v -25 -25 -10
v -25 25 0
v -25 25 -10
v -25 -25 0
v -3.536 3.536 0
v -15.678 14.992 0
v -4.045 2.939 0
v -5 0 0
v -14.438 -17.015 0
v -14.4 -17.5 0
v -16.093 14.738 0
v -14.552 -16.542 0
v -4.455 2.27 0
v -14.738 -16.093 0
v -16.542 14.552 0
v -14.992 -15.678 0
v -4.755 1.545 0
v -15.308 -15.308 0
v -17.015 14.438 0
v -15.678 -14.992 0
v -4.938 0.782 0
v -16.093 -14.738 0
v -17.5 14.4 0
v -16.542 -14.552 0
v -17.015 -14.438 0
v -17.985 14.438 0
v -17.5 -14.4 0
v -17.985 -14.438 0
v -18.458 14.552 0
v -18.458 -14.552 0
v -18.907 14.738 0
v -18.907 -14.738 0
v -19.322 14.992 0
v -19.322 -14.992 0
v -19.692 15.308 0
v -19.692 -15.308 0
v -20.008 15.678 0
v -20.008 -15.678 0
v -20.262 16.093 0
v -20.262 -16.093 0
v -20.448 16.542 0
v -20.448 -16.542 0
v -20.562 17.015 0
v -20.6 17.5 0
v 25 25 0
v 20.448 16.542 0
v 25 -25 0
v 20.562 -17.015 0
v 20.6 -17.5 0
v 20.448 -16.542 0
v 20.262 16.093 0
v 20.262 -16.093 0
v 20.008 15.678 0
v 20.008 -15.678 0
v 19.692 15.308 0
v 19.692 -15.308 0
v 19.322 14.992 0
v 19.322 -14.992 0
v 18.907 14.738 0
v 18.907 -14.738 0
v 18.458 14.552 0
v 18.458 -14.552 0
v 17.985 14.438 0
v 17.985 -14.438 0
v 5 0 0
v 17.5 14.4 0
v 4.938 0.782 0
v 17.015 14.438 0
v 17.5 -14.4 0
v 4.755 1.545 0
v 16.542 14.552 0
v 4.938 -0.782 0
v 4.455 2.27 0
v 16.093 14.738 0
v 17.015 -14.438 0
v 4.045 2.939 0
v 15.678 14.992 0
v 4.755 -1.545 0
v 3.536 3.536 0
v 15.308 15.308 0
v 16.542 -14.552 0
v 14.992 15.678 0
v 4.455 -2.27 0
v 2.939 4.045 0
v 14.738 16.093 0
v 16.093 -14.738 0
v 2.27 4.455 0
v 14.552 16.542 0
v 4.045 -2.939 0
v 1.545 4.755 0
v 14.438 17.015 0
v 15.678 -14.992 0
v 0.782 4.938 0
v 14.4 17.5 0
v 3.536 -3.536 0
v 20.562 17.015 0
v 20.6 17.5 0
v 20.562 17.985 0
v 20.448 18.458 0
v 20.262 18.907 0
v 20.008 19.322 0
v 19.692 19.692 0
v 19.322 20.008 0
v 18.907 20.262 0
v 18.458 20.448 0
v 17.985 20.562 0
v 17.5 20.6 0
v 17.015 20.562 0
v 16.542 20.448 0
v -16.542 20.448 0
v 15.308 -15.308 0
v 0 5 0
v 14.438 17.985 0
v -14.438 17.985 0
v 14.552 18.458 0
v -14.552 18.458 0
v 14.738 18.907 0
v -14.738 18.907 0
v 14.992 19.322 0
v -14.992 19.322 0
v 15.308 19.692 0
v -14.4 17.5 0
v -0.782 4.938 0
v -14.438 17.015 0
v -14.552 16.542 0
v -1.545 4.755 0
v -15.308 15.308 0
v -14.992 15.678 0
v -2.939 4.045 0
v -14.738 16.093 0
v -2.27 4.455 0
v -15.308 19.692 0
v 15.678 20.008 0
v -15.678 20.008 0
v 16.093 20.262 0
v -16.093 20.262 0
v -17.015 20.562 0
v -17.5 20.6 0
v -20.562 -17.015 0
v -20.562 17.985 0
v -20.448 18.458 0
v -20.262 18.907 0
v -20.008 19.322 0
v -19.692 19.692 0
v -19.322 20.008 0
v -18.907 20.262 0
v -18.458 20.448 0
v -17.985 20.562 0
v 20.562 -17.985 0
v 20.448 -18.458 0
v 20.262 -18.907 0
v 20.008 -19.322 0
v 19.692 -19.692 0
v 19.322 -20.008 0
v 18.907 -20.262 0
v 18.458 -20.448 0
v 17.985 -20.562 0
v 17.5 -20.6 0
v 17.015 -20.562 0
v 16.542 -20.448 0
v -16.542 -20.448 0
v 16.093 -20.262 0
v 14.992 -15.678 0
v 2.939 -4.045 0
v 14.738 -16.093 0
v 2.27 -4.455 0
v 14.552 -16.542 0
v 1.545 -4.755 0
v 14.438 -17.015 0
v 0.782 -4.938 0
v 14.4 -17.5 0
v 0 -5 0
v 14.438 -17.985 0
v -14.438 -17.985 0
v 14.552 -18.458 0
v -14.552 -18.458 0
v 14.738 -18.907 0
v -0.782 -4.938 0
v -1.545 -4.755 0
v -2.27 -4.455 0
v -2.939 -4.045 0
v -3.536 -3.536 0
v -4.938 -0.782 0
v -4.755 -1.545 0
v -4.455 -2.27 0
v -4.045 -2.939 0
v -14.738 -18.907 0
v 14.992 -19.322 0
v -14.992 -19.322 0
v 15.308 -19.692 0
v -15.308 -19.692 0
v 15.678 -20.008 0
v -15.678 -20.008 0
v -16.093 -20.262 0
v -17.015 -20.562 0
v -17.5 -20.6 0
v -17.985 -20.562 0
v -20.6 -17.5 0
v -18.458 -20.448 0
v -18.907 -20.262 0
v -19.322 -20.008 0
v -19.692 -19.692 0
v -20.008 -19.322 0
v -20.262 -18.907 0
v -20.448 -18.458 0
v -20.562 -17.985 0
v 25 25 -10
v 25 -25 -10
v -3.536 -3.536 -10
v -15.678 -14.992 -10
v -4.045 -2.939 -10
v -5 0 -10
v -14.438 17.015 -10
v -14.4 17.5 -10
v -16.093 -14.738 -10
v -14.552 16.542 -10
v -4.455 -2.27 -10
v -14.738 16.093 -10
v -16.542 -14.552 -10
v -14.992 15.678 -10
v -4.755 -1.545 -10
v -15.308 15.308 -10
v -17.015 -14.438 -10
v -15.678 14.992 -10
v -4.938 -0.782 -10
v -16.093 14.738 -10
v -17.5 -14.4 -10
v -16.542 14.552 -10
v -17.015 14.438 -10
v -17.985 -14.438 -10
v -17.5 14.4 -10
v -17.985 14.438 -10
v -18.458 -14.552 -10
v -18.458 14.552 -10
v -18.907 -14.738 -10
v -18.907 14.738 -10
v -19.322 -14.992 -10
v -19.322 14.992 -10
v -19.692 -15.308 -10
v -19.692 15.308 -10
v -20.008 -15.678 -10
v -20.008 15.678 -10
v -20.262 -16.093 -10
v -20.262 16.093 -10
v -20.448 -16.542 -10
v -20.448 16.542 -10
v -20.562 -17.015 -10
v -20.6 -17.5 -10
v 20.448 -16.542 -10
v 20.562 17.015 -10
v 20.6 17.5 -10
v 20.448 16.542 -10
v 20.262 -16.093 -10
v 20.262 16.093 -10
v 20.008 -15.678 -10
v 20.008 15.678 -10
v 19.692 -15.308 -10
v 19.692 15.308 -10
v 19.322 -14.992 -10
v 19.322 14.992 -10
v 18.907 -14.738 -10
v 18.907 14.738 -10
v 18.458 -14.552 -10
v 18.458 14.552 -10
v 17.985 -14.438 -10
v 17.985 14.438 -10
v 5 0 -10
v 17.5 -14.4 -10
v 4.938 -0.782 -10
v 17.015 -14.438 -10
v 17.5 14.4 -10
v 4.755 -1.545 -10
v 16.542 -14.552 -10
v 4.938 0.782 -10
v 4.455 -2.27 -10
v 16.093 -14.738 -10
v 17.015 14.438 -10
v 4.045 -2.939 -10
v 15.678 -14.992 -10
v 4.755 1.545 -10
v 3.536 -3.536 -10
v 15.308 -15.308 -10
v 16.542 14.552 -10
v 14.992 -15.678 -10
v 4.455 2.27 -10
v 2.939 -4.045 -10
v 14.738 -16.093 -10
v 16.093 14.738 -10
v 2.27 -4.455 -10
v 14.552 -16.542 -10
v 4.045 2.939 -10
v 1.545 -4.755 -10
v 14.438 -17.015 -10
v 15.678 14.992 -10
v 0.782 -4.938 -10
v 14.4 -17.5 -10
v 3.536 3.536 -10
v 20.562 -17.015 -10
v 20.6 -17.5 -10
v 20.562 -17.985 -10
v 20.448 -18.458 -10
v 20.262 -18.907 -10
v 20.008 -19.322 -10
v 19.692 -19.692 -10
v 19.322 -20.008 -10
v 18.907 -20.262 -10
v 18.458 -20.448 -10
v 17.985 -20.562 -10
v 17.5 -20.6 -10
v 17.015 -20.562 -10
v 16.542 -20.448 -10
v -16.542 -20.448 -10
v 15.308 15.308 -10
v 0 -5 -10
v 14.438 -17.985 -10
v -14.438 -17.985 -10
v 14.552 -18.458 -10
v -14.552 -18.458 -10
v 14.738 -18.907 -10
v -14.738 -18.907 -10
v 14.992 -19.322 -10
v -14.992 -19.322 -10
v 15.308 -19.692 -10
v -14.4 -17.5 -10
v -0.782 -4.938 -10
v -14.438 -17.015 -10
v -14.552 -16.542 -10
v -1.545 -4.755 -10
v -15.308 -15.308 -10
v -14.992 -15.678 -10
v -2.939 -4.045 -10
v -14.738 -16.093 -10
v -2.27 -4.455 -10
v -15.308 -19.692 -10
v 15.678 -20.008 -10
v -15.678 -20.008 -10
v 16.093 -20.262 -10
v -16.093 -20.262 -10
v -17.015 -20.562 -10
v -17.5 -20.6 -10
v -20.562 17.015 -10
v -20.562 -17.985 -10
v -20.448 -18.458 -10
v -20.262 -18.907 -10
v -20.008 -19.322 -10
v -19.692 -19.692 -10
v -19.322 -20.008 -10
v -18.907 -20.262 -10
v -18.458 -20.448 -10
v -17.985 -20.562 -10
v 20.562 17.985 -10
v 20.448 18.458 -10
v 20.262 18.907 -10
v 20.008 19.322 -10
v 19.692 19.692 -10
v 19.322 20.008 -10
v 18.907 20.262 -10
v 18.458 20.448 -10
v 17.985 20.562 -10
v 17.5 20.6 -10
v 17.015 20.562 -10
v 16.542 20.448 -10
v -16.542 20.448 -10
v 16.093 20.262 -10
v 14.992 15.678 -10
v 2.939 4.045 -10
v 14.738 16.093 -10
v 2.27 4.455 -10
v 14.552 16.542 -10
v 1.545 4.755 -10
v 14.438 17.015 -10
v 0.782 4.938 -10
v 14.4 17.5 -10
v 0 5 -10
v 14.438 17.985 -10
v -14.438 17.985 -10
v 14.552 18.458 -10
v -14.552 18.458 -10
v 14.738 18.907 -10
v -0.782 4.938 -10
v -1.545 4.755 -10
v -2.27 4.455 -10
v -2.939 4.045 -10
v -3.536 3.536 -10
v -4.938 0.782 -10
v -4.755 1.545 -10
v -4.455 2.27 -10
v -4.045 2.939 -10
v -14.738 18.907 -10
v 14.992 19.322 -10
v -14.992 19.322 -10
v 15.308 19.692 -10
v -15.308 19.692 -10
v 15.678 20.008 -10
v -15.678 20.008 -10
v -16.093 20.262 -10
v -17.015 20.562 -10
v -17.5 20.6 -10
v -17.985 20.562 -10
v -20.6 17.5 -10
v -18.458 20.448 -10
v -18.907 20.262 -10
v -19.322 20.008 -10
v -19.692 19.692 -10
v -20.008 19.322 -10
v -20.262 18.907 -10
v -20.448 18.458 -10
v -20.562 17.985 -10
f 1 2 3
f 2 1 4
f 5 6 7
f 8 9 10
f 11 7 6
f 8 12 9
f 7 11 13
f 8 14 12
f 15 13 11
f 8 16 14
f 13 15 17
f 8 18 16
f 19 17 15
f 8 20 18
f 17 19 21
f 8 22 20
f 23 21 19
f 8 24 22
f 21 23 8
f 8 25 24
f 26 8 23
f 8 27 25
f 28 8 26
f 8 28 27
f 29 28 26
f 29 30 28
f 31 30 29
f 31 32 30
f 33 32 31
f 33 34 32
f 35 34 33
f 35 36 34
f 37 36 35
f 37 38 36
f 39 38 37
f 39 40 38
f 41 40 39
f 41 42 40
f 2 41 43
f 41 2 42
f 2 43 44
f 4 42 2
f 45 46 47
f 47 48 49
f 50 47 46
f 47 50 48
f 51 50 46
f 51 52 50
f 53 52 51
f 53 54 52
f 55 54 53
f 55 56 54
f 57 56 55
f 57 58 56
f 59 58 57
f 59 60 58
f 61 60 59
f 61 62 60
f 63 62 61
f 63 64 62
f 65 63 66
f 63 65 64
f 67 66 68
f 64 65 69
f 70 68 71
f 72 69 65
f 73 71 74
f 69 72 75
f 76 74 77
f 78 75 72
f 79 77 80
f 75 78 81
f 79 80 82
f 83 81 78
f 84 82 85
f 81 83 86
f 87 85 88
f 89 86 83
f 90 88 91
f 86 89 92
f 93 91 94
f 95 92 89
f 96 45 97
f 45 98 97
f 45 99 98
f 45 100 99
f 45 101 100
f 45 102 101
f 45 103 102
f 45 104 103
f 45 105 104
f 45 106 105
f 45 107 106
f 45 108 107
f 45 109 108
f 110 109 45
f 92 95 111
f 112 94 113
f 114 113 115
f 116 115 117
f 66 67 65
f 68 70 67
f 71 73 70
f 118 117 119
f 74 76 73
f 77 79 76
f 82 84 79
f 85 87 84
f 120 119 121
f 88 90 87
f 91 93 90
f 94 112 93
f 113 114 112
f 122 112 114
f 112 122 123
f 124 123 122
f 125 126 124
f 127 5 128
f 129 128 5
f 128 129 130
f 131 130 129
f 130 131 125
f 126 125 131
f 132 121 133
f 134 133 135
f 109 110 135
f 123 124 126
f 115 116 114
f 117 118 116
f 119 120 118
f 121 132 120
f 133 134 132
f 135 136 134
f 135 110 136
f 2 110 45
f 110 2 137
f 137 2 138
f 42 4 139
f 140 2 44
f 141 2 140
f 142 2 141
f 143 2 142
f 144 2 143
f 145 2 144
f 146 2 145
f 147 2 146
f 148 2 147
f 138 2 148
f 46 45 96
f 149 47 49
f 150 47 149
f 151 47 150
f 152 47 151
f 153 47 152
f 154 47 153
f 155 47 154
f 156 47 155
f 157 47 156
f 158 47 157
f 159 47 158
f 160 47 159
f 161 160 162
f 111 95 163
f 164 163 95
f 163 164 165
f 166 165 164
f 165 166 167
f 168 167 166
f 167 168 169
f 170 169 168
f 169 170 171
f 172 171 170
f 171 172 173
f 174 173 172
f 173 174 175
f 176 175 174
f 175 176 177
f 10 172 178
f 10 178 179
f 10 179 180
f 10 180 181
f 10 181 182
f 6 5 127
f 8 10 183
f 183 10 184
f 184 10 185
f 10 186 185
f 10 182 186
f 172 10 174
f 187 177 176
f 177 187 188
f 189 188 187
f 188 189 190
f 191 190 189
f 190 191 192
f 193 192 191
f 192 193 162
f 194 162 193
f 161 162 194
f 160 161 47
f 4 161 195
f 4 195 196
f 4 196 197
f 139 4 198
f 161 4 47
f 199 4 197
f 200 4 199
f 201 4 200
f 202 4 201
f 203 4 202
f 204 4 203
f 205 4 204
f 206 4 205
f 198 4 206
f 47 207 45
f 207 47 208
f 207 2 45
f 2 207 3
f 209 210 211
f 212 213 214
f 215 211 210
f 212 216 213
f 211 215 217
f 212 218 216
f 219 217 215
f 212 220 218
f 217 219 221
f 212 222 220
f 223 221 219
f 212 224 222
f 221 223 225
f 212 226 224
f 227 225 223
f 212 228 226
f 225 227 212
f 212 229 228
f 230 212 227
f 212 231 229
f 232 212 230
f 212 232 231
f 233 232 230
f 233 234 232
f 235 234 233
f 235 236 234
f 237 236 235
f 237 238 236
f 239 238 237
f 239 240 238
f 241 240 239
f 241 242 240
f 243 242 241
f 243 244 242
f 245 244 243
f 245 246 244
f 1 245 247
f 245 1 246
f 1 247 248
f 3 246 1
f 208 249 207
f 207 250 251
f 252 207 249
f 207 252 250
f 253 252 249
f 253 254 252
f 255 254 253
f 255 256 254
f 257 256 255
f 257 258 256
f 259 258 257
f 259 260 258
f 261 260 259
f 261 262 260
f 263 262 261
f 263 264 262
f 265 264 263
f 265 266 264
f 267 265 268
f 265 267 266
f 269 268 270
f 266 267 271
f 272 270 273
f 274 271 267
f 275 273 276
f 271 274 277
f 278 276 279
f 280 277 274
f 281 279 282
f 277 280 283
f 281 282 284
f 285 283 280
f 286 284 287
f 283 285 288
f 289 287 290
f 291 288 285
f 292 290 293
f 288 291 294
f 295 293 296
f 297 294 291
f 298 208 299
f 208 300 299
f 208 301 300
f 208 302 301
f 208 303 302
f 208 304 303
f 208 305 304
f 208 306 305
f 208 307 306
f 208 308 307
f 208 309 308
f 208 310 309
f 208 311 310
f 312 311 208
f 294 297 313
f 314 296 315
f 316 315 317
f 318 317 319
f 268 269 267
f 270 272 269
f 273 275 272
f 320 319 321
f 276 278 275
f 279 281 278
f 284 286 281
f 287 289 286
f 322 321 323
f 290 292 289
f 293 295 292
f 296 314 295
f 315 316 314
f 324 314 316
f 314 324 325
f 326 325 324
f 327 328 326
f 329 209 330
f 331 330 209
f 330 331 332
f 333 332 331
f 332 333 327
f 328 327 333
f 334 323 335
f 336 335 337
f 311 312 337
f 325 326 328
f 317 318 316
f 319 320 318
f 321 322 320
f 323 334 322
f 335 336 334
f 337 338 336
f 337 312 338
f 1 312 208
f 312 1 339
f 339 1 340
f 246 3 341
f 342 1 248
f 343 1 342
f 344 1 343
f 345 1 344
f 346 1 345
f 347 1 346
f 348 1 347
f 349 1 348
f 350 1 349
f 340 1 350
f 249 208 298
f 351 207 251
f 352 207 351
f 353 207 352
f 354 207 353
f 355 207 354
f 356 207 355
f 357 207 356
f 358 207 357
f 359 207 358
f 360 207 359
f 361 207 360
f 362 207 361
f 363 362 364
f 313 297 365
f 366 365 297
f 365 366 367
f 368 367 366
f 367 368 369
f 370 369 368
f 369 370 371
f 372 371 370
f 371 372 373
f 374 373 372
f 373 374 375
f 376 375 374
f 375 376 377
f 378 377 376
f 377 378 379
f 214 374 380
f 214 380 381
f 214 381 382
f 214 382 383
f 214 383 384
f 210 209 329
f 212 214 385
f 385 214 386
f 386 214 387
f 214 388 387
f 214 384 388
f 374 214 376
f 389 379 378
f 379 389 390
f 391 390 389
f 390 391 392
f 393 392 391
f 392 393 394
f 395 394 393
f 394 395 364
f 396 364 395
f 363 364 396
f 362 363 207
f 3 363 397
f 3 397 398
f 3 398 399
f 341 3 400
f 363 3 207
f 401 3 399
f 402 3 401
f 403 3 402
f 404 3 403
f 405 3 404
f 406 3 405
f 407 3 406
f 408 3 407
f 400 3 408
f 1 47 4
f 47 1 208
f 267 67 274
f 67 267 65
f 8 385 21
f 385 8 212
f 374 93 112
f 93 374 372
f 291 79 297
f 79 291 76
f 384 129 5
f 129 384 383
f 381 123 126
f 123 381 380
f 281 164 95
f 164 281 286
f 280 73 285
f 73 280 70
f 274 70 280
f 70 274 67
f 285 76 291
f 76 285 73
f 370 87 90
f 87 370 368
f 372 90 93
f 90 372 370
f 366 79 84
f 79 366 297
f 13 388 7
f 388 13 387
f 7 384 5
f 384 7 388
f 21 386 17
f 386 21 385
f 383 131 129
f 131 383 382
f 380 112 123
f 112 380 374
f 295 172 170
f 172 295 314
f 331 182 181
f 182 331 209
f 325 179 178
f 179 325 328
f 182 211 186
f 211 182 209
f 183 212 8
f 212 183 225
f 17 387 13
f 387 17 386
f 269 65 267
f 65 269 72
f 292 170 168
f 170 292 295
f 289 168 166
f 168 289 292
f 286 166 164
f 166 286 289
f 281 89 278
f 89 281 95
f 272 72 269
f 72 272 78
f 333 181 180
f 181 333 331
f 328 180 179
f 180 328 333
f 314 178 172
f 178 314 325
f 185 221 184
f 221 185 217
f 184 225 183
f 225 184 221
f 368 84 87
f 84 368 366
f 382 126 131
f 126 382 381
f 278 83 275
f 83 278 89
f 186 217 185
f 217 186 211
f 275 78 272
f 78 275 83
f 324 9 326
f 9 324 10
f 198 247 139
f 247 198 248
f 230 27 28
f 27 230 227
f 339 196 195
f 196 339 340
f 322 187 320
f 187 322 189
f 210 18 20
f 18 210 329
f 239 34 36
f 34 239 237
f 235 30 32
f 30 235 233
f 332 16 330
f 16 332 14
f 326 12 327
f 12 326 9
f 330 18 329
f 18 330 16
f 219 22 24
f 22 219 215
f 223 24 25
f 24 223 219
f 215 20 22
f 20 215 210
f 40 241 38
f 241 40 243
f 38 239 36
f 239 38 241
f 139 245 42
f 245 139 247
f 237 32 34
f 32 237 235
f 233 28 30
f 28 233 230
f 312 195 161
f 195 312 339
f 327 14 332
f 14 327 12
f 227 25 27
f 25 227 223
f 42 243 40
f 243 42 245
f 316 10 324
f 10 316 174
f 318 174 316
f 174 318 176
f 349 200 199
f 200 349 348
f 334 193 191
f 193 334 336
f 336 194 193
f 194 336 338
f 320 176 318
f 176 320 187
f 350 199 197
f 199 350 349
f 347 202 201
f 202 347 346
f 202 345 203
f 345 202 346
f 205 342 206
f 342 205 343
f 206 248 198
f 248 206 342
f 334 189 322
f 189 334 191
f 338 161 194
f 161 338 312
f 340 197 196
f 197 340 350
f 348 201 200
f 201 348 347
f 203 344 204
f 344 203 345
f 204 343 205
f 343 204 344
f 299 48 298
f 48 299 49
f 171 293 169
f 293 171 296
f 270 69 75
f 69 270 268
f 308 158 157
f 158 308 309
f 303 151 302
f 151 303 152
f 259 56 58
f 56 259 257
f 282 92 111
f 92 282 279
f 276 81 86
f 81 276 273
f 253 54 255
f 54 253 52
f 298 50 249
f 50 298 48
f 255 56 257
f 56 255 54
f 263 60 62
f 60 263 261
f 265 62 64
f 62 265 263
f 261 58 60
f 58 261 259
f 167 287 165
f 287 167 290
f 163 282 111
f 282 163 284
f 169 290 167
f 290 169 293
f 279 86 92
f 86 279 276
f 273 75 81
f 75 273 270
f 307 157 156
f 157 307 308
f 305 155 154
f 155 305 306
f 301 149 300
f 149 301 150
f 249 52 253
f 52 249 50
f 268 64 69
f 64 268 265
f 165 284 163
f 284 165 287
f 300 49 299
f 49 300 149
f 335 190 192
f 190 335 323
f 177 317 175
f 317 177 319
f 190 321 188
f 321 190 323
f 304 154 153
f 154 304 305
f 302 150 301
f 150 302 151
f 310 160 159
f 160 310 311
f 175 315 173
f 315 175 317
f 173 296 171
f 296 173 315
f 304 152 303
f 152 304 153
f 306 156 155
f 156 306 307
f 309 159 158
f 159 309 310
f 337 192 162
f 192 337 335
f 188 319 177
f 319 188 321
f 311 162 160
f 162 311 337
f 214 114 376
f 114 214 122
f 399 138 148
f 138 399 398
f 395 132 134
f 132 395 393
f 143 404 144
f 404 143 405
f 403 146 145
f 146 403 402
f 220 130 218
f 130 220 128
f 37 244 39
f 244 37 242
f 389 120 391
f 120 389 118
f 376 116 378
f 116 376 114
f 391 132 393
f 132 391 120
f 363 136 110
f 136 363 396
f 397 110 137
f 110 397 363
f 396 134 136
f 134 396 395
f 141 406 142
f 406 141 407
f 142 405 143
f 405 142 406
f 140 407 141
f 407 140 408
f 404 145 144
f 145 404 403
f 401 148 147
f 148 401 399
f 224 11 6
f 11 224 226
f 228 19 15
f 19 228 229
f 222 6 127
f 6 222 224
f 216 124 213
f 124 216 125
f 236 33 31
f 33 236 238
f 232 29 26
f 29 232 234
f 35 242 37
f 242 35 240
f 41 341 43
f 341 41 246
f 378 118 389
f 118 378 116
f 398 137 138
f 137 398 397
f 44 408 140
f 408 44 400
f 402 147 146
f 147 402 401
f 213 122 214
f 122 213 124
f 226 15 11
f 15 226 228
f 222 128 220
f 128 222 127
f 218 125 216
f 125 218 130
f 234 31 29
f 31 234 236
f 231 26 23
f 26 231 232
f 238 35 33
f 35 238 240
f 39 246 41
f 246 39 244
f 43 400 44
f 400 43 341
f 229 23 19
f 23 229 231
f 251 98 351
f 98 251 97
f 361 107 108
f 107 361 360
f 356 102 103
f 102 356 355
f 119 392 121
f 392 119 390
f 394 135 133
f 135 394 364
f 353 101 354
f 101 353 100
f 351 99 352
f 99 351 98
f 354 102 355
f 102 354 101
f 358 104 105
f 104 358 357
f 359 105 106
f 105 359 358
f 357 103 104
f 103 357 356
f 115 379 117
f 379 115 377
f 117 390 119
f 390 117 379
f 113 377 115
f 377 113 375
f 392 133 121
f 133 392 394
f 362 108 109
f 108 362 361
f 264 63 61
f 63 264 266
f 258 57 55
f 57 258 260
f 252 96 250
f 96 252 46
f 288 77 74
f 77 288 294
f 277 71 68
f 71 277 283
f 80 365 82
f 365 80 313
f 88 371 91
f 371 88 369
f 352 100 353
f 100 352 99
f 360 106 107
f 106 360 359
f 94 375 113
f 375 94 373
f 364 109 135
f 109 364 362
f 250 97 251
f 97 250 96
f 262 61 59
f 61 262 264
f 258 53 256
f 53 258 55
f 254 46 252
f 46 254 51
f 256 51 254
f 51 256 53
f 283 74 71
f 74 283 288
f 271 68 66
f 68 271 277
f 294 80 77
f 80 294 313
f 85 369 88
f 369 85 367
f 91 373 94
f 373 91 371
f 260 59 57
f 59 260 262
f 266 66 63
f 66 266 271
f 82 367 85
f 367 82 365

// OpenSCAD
// file: optics_thingy_body.scad
// units in mm
// optics light tube for Akash
$fn = 40;

// editable
post_diameter_nominal = 12.7;
post_d_fudge = -0.4;

post_height = 60;

platexy = 50;
plate_t = 10;
inner_d = 10;

colm_diameter_nominal = 1;
colm_d_fudge = 0.1;
colm_h = 12.7;

mount_hole_d = 6.2;
hole_offset = 15;

// calculated
post_d = post_diameter_nominal + post_d_fudge;
colm_d = colm_diameter_nominal + colm_d_fudge;
holexy = platexy - hole_offset;

module body(){
    // geometry
    difference(){
        union(){
            cylinder(d=post_d, h=post_height);
            translate([0,0,plate_t/2]) cube([platexy, platexy, plate_t],center=true);
        }
        cylinder(d=inner_d, h=post_height);
        cylinder(d=colm_d, h=colm_h);
        
        translate([-holexy/2,-holexy/2,0]) cylinder(d=mount_hole_d, h=plate_t);
        translate([ holexy/2,-holexy/2,0]) cylinder(d=mount_hole_d, h=plate_t);
        translate([-holexy/2, holexy/2,0]) cylinder(d=mount_hole_d, h=plate_t);
        translate([ holexy/2, holexy/2,0]) cylinder(d=mount_hole_d, h=plate_t);
    }
}

// body();
// main file
include <optics_thingy_body.scad>

fiber_clearance_d = 10;

// geometry

translate([0,0,-plate_t]) difference(){
    translate([0,0,plate_t/2]) cube([platexy, platexy, plate_t],center=true);
    cylinder(d=fiber_clearance_d, h=colm_h);
    
    translate([-holexy/2,-holexy/2,0]) cylinder(d=mount_hole_d, h=plate_t);
    translate([ holexy/2,-holexy/2,0]) cylinder(d=mount_hole_d, h=plate_t);
    translate([-holexy/2, holexy/2,0]) cylinder(d=mount_hole_d, h=plate_t);
    translate([ holexy/2, holexy/2,0]) cylinder(d=mount_hole_d, h=plate_t);
}

//body();
